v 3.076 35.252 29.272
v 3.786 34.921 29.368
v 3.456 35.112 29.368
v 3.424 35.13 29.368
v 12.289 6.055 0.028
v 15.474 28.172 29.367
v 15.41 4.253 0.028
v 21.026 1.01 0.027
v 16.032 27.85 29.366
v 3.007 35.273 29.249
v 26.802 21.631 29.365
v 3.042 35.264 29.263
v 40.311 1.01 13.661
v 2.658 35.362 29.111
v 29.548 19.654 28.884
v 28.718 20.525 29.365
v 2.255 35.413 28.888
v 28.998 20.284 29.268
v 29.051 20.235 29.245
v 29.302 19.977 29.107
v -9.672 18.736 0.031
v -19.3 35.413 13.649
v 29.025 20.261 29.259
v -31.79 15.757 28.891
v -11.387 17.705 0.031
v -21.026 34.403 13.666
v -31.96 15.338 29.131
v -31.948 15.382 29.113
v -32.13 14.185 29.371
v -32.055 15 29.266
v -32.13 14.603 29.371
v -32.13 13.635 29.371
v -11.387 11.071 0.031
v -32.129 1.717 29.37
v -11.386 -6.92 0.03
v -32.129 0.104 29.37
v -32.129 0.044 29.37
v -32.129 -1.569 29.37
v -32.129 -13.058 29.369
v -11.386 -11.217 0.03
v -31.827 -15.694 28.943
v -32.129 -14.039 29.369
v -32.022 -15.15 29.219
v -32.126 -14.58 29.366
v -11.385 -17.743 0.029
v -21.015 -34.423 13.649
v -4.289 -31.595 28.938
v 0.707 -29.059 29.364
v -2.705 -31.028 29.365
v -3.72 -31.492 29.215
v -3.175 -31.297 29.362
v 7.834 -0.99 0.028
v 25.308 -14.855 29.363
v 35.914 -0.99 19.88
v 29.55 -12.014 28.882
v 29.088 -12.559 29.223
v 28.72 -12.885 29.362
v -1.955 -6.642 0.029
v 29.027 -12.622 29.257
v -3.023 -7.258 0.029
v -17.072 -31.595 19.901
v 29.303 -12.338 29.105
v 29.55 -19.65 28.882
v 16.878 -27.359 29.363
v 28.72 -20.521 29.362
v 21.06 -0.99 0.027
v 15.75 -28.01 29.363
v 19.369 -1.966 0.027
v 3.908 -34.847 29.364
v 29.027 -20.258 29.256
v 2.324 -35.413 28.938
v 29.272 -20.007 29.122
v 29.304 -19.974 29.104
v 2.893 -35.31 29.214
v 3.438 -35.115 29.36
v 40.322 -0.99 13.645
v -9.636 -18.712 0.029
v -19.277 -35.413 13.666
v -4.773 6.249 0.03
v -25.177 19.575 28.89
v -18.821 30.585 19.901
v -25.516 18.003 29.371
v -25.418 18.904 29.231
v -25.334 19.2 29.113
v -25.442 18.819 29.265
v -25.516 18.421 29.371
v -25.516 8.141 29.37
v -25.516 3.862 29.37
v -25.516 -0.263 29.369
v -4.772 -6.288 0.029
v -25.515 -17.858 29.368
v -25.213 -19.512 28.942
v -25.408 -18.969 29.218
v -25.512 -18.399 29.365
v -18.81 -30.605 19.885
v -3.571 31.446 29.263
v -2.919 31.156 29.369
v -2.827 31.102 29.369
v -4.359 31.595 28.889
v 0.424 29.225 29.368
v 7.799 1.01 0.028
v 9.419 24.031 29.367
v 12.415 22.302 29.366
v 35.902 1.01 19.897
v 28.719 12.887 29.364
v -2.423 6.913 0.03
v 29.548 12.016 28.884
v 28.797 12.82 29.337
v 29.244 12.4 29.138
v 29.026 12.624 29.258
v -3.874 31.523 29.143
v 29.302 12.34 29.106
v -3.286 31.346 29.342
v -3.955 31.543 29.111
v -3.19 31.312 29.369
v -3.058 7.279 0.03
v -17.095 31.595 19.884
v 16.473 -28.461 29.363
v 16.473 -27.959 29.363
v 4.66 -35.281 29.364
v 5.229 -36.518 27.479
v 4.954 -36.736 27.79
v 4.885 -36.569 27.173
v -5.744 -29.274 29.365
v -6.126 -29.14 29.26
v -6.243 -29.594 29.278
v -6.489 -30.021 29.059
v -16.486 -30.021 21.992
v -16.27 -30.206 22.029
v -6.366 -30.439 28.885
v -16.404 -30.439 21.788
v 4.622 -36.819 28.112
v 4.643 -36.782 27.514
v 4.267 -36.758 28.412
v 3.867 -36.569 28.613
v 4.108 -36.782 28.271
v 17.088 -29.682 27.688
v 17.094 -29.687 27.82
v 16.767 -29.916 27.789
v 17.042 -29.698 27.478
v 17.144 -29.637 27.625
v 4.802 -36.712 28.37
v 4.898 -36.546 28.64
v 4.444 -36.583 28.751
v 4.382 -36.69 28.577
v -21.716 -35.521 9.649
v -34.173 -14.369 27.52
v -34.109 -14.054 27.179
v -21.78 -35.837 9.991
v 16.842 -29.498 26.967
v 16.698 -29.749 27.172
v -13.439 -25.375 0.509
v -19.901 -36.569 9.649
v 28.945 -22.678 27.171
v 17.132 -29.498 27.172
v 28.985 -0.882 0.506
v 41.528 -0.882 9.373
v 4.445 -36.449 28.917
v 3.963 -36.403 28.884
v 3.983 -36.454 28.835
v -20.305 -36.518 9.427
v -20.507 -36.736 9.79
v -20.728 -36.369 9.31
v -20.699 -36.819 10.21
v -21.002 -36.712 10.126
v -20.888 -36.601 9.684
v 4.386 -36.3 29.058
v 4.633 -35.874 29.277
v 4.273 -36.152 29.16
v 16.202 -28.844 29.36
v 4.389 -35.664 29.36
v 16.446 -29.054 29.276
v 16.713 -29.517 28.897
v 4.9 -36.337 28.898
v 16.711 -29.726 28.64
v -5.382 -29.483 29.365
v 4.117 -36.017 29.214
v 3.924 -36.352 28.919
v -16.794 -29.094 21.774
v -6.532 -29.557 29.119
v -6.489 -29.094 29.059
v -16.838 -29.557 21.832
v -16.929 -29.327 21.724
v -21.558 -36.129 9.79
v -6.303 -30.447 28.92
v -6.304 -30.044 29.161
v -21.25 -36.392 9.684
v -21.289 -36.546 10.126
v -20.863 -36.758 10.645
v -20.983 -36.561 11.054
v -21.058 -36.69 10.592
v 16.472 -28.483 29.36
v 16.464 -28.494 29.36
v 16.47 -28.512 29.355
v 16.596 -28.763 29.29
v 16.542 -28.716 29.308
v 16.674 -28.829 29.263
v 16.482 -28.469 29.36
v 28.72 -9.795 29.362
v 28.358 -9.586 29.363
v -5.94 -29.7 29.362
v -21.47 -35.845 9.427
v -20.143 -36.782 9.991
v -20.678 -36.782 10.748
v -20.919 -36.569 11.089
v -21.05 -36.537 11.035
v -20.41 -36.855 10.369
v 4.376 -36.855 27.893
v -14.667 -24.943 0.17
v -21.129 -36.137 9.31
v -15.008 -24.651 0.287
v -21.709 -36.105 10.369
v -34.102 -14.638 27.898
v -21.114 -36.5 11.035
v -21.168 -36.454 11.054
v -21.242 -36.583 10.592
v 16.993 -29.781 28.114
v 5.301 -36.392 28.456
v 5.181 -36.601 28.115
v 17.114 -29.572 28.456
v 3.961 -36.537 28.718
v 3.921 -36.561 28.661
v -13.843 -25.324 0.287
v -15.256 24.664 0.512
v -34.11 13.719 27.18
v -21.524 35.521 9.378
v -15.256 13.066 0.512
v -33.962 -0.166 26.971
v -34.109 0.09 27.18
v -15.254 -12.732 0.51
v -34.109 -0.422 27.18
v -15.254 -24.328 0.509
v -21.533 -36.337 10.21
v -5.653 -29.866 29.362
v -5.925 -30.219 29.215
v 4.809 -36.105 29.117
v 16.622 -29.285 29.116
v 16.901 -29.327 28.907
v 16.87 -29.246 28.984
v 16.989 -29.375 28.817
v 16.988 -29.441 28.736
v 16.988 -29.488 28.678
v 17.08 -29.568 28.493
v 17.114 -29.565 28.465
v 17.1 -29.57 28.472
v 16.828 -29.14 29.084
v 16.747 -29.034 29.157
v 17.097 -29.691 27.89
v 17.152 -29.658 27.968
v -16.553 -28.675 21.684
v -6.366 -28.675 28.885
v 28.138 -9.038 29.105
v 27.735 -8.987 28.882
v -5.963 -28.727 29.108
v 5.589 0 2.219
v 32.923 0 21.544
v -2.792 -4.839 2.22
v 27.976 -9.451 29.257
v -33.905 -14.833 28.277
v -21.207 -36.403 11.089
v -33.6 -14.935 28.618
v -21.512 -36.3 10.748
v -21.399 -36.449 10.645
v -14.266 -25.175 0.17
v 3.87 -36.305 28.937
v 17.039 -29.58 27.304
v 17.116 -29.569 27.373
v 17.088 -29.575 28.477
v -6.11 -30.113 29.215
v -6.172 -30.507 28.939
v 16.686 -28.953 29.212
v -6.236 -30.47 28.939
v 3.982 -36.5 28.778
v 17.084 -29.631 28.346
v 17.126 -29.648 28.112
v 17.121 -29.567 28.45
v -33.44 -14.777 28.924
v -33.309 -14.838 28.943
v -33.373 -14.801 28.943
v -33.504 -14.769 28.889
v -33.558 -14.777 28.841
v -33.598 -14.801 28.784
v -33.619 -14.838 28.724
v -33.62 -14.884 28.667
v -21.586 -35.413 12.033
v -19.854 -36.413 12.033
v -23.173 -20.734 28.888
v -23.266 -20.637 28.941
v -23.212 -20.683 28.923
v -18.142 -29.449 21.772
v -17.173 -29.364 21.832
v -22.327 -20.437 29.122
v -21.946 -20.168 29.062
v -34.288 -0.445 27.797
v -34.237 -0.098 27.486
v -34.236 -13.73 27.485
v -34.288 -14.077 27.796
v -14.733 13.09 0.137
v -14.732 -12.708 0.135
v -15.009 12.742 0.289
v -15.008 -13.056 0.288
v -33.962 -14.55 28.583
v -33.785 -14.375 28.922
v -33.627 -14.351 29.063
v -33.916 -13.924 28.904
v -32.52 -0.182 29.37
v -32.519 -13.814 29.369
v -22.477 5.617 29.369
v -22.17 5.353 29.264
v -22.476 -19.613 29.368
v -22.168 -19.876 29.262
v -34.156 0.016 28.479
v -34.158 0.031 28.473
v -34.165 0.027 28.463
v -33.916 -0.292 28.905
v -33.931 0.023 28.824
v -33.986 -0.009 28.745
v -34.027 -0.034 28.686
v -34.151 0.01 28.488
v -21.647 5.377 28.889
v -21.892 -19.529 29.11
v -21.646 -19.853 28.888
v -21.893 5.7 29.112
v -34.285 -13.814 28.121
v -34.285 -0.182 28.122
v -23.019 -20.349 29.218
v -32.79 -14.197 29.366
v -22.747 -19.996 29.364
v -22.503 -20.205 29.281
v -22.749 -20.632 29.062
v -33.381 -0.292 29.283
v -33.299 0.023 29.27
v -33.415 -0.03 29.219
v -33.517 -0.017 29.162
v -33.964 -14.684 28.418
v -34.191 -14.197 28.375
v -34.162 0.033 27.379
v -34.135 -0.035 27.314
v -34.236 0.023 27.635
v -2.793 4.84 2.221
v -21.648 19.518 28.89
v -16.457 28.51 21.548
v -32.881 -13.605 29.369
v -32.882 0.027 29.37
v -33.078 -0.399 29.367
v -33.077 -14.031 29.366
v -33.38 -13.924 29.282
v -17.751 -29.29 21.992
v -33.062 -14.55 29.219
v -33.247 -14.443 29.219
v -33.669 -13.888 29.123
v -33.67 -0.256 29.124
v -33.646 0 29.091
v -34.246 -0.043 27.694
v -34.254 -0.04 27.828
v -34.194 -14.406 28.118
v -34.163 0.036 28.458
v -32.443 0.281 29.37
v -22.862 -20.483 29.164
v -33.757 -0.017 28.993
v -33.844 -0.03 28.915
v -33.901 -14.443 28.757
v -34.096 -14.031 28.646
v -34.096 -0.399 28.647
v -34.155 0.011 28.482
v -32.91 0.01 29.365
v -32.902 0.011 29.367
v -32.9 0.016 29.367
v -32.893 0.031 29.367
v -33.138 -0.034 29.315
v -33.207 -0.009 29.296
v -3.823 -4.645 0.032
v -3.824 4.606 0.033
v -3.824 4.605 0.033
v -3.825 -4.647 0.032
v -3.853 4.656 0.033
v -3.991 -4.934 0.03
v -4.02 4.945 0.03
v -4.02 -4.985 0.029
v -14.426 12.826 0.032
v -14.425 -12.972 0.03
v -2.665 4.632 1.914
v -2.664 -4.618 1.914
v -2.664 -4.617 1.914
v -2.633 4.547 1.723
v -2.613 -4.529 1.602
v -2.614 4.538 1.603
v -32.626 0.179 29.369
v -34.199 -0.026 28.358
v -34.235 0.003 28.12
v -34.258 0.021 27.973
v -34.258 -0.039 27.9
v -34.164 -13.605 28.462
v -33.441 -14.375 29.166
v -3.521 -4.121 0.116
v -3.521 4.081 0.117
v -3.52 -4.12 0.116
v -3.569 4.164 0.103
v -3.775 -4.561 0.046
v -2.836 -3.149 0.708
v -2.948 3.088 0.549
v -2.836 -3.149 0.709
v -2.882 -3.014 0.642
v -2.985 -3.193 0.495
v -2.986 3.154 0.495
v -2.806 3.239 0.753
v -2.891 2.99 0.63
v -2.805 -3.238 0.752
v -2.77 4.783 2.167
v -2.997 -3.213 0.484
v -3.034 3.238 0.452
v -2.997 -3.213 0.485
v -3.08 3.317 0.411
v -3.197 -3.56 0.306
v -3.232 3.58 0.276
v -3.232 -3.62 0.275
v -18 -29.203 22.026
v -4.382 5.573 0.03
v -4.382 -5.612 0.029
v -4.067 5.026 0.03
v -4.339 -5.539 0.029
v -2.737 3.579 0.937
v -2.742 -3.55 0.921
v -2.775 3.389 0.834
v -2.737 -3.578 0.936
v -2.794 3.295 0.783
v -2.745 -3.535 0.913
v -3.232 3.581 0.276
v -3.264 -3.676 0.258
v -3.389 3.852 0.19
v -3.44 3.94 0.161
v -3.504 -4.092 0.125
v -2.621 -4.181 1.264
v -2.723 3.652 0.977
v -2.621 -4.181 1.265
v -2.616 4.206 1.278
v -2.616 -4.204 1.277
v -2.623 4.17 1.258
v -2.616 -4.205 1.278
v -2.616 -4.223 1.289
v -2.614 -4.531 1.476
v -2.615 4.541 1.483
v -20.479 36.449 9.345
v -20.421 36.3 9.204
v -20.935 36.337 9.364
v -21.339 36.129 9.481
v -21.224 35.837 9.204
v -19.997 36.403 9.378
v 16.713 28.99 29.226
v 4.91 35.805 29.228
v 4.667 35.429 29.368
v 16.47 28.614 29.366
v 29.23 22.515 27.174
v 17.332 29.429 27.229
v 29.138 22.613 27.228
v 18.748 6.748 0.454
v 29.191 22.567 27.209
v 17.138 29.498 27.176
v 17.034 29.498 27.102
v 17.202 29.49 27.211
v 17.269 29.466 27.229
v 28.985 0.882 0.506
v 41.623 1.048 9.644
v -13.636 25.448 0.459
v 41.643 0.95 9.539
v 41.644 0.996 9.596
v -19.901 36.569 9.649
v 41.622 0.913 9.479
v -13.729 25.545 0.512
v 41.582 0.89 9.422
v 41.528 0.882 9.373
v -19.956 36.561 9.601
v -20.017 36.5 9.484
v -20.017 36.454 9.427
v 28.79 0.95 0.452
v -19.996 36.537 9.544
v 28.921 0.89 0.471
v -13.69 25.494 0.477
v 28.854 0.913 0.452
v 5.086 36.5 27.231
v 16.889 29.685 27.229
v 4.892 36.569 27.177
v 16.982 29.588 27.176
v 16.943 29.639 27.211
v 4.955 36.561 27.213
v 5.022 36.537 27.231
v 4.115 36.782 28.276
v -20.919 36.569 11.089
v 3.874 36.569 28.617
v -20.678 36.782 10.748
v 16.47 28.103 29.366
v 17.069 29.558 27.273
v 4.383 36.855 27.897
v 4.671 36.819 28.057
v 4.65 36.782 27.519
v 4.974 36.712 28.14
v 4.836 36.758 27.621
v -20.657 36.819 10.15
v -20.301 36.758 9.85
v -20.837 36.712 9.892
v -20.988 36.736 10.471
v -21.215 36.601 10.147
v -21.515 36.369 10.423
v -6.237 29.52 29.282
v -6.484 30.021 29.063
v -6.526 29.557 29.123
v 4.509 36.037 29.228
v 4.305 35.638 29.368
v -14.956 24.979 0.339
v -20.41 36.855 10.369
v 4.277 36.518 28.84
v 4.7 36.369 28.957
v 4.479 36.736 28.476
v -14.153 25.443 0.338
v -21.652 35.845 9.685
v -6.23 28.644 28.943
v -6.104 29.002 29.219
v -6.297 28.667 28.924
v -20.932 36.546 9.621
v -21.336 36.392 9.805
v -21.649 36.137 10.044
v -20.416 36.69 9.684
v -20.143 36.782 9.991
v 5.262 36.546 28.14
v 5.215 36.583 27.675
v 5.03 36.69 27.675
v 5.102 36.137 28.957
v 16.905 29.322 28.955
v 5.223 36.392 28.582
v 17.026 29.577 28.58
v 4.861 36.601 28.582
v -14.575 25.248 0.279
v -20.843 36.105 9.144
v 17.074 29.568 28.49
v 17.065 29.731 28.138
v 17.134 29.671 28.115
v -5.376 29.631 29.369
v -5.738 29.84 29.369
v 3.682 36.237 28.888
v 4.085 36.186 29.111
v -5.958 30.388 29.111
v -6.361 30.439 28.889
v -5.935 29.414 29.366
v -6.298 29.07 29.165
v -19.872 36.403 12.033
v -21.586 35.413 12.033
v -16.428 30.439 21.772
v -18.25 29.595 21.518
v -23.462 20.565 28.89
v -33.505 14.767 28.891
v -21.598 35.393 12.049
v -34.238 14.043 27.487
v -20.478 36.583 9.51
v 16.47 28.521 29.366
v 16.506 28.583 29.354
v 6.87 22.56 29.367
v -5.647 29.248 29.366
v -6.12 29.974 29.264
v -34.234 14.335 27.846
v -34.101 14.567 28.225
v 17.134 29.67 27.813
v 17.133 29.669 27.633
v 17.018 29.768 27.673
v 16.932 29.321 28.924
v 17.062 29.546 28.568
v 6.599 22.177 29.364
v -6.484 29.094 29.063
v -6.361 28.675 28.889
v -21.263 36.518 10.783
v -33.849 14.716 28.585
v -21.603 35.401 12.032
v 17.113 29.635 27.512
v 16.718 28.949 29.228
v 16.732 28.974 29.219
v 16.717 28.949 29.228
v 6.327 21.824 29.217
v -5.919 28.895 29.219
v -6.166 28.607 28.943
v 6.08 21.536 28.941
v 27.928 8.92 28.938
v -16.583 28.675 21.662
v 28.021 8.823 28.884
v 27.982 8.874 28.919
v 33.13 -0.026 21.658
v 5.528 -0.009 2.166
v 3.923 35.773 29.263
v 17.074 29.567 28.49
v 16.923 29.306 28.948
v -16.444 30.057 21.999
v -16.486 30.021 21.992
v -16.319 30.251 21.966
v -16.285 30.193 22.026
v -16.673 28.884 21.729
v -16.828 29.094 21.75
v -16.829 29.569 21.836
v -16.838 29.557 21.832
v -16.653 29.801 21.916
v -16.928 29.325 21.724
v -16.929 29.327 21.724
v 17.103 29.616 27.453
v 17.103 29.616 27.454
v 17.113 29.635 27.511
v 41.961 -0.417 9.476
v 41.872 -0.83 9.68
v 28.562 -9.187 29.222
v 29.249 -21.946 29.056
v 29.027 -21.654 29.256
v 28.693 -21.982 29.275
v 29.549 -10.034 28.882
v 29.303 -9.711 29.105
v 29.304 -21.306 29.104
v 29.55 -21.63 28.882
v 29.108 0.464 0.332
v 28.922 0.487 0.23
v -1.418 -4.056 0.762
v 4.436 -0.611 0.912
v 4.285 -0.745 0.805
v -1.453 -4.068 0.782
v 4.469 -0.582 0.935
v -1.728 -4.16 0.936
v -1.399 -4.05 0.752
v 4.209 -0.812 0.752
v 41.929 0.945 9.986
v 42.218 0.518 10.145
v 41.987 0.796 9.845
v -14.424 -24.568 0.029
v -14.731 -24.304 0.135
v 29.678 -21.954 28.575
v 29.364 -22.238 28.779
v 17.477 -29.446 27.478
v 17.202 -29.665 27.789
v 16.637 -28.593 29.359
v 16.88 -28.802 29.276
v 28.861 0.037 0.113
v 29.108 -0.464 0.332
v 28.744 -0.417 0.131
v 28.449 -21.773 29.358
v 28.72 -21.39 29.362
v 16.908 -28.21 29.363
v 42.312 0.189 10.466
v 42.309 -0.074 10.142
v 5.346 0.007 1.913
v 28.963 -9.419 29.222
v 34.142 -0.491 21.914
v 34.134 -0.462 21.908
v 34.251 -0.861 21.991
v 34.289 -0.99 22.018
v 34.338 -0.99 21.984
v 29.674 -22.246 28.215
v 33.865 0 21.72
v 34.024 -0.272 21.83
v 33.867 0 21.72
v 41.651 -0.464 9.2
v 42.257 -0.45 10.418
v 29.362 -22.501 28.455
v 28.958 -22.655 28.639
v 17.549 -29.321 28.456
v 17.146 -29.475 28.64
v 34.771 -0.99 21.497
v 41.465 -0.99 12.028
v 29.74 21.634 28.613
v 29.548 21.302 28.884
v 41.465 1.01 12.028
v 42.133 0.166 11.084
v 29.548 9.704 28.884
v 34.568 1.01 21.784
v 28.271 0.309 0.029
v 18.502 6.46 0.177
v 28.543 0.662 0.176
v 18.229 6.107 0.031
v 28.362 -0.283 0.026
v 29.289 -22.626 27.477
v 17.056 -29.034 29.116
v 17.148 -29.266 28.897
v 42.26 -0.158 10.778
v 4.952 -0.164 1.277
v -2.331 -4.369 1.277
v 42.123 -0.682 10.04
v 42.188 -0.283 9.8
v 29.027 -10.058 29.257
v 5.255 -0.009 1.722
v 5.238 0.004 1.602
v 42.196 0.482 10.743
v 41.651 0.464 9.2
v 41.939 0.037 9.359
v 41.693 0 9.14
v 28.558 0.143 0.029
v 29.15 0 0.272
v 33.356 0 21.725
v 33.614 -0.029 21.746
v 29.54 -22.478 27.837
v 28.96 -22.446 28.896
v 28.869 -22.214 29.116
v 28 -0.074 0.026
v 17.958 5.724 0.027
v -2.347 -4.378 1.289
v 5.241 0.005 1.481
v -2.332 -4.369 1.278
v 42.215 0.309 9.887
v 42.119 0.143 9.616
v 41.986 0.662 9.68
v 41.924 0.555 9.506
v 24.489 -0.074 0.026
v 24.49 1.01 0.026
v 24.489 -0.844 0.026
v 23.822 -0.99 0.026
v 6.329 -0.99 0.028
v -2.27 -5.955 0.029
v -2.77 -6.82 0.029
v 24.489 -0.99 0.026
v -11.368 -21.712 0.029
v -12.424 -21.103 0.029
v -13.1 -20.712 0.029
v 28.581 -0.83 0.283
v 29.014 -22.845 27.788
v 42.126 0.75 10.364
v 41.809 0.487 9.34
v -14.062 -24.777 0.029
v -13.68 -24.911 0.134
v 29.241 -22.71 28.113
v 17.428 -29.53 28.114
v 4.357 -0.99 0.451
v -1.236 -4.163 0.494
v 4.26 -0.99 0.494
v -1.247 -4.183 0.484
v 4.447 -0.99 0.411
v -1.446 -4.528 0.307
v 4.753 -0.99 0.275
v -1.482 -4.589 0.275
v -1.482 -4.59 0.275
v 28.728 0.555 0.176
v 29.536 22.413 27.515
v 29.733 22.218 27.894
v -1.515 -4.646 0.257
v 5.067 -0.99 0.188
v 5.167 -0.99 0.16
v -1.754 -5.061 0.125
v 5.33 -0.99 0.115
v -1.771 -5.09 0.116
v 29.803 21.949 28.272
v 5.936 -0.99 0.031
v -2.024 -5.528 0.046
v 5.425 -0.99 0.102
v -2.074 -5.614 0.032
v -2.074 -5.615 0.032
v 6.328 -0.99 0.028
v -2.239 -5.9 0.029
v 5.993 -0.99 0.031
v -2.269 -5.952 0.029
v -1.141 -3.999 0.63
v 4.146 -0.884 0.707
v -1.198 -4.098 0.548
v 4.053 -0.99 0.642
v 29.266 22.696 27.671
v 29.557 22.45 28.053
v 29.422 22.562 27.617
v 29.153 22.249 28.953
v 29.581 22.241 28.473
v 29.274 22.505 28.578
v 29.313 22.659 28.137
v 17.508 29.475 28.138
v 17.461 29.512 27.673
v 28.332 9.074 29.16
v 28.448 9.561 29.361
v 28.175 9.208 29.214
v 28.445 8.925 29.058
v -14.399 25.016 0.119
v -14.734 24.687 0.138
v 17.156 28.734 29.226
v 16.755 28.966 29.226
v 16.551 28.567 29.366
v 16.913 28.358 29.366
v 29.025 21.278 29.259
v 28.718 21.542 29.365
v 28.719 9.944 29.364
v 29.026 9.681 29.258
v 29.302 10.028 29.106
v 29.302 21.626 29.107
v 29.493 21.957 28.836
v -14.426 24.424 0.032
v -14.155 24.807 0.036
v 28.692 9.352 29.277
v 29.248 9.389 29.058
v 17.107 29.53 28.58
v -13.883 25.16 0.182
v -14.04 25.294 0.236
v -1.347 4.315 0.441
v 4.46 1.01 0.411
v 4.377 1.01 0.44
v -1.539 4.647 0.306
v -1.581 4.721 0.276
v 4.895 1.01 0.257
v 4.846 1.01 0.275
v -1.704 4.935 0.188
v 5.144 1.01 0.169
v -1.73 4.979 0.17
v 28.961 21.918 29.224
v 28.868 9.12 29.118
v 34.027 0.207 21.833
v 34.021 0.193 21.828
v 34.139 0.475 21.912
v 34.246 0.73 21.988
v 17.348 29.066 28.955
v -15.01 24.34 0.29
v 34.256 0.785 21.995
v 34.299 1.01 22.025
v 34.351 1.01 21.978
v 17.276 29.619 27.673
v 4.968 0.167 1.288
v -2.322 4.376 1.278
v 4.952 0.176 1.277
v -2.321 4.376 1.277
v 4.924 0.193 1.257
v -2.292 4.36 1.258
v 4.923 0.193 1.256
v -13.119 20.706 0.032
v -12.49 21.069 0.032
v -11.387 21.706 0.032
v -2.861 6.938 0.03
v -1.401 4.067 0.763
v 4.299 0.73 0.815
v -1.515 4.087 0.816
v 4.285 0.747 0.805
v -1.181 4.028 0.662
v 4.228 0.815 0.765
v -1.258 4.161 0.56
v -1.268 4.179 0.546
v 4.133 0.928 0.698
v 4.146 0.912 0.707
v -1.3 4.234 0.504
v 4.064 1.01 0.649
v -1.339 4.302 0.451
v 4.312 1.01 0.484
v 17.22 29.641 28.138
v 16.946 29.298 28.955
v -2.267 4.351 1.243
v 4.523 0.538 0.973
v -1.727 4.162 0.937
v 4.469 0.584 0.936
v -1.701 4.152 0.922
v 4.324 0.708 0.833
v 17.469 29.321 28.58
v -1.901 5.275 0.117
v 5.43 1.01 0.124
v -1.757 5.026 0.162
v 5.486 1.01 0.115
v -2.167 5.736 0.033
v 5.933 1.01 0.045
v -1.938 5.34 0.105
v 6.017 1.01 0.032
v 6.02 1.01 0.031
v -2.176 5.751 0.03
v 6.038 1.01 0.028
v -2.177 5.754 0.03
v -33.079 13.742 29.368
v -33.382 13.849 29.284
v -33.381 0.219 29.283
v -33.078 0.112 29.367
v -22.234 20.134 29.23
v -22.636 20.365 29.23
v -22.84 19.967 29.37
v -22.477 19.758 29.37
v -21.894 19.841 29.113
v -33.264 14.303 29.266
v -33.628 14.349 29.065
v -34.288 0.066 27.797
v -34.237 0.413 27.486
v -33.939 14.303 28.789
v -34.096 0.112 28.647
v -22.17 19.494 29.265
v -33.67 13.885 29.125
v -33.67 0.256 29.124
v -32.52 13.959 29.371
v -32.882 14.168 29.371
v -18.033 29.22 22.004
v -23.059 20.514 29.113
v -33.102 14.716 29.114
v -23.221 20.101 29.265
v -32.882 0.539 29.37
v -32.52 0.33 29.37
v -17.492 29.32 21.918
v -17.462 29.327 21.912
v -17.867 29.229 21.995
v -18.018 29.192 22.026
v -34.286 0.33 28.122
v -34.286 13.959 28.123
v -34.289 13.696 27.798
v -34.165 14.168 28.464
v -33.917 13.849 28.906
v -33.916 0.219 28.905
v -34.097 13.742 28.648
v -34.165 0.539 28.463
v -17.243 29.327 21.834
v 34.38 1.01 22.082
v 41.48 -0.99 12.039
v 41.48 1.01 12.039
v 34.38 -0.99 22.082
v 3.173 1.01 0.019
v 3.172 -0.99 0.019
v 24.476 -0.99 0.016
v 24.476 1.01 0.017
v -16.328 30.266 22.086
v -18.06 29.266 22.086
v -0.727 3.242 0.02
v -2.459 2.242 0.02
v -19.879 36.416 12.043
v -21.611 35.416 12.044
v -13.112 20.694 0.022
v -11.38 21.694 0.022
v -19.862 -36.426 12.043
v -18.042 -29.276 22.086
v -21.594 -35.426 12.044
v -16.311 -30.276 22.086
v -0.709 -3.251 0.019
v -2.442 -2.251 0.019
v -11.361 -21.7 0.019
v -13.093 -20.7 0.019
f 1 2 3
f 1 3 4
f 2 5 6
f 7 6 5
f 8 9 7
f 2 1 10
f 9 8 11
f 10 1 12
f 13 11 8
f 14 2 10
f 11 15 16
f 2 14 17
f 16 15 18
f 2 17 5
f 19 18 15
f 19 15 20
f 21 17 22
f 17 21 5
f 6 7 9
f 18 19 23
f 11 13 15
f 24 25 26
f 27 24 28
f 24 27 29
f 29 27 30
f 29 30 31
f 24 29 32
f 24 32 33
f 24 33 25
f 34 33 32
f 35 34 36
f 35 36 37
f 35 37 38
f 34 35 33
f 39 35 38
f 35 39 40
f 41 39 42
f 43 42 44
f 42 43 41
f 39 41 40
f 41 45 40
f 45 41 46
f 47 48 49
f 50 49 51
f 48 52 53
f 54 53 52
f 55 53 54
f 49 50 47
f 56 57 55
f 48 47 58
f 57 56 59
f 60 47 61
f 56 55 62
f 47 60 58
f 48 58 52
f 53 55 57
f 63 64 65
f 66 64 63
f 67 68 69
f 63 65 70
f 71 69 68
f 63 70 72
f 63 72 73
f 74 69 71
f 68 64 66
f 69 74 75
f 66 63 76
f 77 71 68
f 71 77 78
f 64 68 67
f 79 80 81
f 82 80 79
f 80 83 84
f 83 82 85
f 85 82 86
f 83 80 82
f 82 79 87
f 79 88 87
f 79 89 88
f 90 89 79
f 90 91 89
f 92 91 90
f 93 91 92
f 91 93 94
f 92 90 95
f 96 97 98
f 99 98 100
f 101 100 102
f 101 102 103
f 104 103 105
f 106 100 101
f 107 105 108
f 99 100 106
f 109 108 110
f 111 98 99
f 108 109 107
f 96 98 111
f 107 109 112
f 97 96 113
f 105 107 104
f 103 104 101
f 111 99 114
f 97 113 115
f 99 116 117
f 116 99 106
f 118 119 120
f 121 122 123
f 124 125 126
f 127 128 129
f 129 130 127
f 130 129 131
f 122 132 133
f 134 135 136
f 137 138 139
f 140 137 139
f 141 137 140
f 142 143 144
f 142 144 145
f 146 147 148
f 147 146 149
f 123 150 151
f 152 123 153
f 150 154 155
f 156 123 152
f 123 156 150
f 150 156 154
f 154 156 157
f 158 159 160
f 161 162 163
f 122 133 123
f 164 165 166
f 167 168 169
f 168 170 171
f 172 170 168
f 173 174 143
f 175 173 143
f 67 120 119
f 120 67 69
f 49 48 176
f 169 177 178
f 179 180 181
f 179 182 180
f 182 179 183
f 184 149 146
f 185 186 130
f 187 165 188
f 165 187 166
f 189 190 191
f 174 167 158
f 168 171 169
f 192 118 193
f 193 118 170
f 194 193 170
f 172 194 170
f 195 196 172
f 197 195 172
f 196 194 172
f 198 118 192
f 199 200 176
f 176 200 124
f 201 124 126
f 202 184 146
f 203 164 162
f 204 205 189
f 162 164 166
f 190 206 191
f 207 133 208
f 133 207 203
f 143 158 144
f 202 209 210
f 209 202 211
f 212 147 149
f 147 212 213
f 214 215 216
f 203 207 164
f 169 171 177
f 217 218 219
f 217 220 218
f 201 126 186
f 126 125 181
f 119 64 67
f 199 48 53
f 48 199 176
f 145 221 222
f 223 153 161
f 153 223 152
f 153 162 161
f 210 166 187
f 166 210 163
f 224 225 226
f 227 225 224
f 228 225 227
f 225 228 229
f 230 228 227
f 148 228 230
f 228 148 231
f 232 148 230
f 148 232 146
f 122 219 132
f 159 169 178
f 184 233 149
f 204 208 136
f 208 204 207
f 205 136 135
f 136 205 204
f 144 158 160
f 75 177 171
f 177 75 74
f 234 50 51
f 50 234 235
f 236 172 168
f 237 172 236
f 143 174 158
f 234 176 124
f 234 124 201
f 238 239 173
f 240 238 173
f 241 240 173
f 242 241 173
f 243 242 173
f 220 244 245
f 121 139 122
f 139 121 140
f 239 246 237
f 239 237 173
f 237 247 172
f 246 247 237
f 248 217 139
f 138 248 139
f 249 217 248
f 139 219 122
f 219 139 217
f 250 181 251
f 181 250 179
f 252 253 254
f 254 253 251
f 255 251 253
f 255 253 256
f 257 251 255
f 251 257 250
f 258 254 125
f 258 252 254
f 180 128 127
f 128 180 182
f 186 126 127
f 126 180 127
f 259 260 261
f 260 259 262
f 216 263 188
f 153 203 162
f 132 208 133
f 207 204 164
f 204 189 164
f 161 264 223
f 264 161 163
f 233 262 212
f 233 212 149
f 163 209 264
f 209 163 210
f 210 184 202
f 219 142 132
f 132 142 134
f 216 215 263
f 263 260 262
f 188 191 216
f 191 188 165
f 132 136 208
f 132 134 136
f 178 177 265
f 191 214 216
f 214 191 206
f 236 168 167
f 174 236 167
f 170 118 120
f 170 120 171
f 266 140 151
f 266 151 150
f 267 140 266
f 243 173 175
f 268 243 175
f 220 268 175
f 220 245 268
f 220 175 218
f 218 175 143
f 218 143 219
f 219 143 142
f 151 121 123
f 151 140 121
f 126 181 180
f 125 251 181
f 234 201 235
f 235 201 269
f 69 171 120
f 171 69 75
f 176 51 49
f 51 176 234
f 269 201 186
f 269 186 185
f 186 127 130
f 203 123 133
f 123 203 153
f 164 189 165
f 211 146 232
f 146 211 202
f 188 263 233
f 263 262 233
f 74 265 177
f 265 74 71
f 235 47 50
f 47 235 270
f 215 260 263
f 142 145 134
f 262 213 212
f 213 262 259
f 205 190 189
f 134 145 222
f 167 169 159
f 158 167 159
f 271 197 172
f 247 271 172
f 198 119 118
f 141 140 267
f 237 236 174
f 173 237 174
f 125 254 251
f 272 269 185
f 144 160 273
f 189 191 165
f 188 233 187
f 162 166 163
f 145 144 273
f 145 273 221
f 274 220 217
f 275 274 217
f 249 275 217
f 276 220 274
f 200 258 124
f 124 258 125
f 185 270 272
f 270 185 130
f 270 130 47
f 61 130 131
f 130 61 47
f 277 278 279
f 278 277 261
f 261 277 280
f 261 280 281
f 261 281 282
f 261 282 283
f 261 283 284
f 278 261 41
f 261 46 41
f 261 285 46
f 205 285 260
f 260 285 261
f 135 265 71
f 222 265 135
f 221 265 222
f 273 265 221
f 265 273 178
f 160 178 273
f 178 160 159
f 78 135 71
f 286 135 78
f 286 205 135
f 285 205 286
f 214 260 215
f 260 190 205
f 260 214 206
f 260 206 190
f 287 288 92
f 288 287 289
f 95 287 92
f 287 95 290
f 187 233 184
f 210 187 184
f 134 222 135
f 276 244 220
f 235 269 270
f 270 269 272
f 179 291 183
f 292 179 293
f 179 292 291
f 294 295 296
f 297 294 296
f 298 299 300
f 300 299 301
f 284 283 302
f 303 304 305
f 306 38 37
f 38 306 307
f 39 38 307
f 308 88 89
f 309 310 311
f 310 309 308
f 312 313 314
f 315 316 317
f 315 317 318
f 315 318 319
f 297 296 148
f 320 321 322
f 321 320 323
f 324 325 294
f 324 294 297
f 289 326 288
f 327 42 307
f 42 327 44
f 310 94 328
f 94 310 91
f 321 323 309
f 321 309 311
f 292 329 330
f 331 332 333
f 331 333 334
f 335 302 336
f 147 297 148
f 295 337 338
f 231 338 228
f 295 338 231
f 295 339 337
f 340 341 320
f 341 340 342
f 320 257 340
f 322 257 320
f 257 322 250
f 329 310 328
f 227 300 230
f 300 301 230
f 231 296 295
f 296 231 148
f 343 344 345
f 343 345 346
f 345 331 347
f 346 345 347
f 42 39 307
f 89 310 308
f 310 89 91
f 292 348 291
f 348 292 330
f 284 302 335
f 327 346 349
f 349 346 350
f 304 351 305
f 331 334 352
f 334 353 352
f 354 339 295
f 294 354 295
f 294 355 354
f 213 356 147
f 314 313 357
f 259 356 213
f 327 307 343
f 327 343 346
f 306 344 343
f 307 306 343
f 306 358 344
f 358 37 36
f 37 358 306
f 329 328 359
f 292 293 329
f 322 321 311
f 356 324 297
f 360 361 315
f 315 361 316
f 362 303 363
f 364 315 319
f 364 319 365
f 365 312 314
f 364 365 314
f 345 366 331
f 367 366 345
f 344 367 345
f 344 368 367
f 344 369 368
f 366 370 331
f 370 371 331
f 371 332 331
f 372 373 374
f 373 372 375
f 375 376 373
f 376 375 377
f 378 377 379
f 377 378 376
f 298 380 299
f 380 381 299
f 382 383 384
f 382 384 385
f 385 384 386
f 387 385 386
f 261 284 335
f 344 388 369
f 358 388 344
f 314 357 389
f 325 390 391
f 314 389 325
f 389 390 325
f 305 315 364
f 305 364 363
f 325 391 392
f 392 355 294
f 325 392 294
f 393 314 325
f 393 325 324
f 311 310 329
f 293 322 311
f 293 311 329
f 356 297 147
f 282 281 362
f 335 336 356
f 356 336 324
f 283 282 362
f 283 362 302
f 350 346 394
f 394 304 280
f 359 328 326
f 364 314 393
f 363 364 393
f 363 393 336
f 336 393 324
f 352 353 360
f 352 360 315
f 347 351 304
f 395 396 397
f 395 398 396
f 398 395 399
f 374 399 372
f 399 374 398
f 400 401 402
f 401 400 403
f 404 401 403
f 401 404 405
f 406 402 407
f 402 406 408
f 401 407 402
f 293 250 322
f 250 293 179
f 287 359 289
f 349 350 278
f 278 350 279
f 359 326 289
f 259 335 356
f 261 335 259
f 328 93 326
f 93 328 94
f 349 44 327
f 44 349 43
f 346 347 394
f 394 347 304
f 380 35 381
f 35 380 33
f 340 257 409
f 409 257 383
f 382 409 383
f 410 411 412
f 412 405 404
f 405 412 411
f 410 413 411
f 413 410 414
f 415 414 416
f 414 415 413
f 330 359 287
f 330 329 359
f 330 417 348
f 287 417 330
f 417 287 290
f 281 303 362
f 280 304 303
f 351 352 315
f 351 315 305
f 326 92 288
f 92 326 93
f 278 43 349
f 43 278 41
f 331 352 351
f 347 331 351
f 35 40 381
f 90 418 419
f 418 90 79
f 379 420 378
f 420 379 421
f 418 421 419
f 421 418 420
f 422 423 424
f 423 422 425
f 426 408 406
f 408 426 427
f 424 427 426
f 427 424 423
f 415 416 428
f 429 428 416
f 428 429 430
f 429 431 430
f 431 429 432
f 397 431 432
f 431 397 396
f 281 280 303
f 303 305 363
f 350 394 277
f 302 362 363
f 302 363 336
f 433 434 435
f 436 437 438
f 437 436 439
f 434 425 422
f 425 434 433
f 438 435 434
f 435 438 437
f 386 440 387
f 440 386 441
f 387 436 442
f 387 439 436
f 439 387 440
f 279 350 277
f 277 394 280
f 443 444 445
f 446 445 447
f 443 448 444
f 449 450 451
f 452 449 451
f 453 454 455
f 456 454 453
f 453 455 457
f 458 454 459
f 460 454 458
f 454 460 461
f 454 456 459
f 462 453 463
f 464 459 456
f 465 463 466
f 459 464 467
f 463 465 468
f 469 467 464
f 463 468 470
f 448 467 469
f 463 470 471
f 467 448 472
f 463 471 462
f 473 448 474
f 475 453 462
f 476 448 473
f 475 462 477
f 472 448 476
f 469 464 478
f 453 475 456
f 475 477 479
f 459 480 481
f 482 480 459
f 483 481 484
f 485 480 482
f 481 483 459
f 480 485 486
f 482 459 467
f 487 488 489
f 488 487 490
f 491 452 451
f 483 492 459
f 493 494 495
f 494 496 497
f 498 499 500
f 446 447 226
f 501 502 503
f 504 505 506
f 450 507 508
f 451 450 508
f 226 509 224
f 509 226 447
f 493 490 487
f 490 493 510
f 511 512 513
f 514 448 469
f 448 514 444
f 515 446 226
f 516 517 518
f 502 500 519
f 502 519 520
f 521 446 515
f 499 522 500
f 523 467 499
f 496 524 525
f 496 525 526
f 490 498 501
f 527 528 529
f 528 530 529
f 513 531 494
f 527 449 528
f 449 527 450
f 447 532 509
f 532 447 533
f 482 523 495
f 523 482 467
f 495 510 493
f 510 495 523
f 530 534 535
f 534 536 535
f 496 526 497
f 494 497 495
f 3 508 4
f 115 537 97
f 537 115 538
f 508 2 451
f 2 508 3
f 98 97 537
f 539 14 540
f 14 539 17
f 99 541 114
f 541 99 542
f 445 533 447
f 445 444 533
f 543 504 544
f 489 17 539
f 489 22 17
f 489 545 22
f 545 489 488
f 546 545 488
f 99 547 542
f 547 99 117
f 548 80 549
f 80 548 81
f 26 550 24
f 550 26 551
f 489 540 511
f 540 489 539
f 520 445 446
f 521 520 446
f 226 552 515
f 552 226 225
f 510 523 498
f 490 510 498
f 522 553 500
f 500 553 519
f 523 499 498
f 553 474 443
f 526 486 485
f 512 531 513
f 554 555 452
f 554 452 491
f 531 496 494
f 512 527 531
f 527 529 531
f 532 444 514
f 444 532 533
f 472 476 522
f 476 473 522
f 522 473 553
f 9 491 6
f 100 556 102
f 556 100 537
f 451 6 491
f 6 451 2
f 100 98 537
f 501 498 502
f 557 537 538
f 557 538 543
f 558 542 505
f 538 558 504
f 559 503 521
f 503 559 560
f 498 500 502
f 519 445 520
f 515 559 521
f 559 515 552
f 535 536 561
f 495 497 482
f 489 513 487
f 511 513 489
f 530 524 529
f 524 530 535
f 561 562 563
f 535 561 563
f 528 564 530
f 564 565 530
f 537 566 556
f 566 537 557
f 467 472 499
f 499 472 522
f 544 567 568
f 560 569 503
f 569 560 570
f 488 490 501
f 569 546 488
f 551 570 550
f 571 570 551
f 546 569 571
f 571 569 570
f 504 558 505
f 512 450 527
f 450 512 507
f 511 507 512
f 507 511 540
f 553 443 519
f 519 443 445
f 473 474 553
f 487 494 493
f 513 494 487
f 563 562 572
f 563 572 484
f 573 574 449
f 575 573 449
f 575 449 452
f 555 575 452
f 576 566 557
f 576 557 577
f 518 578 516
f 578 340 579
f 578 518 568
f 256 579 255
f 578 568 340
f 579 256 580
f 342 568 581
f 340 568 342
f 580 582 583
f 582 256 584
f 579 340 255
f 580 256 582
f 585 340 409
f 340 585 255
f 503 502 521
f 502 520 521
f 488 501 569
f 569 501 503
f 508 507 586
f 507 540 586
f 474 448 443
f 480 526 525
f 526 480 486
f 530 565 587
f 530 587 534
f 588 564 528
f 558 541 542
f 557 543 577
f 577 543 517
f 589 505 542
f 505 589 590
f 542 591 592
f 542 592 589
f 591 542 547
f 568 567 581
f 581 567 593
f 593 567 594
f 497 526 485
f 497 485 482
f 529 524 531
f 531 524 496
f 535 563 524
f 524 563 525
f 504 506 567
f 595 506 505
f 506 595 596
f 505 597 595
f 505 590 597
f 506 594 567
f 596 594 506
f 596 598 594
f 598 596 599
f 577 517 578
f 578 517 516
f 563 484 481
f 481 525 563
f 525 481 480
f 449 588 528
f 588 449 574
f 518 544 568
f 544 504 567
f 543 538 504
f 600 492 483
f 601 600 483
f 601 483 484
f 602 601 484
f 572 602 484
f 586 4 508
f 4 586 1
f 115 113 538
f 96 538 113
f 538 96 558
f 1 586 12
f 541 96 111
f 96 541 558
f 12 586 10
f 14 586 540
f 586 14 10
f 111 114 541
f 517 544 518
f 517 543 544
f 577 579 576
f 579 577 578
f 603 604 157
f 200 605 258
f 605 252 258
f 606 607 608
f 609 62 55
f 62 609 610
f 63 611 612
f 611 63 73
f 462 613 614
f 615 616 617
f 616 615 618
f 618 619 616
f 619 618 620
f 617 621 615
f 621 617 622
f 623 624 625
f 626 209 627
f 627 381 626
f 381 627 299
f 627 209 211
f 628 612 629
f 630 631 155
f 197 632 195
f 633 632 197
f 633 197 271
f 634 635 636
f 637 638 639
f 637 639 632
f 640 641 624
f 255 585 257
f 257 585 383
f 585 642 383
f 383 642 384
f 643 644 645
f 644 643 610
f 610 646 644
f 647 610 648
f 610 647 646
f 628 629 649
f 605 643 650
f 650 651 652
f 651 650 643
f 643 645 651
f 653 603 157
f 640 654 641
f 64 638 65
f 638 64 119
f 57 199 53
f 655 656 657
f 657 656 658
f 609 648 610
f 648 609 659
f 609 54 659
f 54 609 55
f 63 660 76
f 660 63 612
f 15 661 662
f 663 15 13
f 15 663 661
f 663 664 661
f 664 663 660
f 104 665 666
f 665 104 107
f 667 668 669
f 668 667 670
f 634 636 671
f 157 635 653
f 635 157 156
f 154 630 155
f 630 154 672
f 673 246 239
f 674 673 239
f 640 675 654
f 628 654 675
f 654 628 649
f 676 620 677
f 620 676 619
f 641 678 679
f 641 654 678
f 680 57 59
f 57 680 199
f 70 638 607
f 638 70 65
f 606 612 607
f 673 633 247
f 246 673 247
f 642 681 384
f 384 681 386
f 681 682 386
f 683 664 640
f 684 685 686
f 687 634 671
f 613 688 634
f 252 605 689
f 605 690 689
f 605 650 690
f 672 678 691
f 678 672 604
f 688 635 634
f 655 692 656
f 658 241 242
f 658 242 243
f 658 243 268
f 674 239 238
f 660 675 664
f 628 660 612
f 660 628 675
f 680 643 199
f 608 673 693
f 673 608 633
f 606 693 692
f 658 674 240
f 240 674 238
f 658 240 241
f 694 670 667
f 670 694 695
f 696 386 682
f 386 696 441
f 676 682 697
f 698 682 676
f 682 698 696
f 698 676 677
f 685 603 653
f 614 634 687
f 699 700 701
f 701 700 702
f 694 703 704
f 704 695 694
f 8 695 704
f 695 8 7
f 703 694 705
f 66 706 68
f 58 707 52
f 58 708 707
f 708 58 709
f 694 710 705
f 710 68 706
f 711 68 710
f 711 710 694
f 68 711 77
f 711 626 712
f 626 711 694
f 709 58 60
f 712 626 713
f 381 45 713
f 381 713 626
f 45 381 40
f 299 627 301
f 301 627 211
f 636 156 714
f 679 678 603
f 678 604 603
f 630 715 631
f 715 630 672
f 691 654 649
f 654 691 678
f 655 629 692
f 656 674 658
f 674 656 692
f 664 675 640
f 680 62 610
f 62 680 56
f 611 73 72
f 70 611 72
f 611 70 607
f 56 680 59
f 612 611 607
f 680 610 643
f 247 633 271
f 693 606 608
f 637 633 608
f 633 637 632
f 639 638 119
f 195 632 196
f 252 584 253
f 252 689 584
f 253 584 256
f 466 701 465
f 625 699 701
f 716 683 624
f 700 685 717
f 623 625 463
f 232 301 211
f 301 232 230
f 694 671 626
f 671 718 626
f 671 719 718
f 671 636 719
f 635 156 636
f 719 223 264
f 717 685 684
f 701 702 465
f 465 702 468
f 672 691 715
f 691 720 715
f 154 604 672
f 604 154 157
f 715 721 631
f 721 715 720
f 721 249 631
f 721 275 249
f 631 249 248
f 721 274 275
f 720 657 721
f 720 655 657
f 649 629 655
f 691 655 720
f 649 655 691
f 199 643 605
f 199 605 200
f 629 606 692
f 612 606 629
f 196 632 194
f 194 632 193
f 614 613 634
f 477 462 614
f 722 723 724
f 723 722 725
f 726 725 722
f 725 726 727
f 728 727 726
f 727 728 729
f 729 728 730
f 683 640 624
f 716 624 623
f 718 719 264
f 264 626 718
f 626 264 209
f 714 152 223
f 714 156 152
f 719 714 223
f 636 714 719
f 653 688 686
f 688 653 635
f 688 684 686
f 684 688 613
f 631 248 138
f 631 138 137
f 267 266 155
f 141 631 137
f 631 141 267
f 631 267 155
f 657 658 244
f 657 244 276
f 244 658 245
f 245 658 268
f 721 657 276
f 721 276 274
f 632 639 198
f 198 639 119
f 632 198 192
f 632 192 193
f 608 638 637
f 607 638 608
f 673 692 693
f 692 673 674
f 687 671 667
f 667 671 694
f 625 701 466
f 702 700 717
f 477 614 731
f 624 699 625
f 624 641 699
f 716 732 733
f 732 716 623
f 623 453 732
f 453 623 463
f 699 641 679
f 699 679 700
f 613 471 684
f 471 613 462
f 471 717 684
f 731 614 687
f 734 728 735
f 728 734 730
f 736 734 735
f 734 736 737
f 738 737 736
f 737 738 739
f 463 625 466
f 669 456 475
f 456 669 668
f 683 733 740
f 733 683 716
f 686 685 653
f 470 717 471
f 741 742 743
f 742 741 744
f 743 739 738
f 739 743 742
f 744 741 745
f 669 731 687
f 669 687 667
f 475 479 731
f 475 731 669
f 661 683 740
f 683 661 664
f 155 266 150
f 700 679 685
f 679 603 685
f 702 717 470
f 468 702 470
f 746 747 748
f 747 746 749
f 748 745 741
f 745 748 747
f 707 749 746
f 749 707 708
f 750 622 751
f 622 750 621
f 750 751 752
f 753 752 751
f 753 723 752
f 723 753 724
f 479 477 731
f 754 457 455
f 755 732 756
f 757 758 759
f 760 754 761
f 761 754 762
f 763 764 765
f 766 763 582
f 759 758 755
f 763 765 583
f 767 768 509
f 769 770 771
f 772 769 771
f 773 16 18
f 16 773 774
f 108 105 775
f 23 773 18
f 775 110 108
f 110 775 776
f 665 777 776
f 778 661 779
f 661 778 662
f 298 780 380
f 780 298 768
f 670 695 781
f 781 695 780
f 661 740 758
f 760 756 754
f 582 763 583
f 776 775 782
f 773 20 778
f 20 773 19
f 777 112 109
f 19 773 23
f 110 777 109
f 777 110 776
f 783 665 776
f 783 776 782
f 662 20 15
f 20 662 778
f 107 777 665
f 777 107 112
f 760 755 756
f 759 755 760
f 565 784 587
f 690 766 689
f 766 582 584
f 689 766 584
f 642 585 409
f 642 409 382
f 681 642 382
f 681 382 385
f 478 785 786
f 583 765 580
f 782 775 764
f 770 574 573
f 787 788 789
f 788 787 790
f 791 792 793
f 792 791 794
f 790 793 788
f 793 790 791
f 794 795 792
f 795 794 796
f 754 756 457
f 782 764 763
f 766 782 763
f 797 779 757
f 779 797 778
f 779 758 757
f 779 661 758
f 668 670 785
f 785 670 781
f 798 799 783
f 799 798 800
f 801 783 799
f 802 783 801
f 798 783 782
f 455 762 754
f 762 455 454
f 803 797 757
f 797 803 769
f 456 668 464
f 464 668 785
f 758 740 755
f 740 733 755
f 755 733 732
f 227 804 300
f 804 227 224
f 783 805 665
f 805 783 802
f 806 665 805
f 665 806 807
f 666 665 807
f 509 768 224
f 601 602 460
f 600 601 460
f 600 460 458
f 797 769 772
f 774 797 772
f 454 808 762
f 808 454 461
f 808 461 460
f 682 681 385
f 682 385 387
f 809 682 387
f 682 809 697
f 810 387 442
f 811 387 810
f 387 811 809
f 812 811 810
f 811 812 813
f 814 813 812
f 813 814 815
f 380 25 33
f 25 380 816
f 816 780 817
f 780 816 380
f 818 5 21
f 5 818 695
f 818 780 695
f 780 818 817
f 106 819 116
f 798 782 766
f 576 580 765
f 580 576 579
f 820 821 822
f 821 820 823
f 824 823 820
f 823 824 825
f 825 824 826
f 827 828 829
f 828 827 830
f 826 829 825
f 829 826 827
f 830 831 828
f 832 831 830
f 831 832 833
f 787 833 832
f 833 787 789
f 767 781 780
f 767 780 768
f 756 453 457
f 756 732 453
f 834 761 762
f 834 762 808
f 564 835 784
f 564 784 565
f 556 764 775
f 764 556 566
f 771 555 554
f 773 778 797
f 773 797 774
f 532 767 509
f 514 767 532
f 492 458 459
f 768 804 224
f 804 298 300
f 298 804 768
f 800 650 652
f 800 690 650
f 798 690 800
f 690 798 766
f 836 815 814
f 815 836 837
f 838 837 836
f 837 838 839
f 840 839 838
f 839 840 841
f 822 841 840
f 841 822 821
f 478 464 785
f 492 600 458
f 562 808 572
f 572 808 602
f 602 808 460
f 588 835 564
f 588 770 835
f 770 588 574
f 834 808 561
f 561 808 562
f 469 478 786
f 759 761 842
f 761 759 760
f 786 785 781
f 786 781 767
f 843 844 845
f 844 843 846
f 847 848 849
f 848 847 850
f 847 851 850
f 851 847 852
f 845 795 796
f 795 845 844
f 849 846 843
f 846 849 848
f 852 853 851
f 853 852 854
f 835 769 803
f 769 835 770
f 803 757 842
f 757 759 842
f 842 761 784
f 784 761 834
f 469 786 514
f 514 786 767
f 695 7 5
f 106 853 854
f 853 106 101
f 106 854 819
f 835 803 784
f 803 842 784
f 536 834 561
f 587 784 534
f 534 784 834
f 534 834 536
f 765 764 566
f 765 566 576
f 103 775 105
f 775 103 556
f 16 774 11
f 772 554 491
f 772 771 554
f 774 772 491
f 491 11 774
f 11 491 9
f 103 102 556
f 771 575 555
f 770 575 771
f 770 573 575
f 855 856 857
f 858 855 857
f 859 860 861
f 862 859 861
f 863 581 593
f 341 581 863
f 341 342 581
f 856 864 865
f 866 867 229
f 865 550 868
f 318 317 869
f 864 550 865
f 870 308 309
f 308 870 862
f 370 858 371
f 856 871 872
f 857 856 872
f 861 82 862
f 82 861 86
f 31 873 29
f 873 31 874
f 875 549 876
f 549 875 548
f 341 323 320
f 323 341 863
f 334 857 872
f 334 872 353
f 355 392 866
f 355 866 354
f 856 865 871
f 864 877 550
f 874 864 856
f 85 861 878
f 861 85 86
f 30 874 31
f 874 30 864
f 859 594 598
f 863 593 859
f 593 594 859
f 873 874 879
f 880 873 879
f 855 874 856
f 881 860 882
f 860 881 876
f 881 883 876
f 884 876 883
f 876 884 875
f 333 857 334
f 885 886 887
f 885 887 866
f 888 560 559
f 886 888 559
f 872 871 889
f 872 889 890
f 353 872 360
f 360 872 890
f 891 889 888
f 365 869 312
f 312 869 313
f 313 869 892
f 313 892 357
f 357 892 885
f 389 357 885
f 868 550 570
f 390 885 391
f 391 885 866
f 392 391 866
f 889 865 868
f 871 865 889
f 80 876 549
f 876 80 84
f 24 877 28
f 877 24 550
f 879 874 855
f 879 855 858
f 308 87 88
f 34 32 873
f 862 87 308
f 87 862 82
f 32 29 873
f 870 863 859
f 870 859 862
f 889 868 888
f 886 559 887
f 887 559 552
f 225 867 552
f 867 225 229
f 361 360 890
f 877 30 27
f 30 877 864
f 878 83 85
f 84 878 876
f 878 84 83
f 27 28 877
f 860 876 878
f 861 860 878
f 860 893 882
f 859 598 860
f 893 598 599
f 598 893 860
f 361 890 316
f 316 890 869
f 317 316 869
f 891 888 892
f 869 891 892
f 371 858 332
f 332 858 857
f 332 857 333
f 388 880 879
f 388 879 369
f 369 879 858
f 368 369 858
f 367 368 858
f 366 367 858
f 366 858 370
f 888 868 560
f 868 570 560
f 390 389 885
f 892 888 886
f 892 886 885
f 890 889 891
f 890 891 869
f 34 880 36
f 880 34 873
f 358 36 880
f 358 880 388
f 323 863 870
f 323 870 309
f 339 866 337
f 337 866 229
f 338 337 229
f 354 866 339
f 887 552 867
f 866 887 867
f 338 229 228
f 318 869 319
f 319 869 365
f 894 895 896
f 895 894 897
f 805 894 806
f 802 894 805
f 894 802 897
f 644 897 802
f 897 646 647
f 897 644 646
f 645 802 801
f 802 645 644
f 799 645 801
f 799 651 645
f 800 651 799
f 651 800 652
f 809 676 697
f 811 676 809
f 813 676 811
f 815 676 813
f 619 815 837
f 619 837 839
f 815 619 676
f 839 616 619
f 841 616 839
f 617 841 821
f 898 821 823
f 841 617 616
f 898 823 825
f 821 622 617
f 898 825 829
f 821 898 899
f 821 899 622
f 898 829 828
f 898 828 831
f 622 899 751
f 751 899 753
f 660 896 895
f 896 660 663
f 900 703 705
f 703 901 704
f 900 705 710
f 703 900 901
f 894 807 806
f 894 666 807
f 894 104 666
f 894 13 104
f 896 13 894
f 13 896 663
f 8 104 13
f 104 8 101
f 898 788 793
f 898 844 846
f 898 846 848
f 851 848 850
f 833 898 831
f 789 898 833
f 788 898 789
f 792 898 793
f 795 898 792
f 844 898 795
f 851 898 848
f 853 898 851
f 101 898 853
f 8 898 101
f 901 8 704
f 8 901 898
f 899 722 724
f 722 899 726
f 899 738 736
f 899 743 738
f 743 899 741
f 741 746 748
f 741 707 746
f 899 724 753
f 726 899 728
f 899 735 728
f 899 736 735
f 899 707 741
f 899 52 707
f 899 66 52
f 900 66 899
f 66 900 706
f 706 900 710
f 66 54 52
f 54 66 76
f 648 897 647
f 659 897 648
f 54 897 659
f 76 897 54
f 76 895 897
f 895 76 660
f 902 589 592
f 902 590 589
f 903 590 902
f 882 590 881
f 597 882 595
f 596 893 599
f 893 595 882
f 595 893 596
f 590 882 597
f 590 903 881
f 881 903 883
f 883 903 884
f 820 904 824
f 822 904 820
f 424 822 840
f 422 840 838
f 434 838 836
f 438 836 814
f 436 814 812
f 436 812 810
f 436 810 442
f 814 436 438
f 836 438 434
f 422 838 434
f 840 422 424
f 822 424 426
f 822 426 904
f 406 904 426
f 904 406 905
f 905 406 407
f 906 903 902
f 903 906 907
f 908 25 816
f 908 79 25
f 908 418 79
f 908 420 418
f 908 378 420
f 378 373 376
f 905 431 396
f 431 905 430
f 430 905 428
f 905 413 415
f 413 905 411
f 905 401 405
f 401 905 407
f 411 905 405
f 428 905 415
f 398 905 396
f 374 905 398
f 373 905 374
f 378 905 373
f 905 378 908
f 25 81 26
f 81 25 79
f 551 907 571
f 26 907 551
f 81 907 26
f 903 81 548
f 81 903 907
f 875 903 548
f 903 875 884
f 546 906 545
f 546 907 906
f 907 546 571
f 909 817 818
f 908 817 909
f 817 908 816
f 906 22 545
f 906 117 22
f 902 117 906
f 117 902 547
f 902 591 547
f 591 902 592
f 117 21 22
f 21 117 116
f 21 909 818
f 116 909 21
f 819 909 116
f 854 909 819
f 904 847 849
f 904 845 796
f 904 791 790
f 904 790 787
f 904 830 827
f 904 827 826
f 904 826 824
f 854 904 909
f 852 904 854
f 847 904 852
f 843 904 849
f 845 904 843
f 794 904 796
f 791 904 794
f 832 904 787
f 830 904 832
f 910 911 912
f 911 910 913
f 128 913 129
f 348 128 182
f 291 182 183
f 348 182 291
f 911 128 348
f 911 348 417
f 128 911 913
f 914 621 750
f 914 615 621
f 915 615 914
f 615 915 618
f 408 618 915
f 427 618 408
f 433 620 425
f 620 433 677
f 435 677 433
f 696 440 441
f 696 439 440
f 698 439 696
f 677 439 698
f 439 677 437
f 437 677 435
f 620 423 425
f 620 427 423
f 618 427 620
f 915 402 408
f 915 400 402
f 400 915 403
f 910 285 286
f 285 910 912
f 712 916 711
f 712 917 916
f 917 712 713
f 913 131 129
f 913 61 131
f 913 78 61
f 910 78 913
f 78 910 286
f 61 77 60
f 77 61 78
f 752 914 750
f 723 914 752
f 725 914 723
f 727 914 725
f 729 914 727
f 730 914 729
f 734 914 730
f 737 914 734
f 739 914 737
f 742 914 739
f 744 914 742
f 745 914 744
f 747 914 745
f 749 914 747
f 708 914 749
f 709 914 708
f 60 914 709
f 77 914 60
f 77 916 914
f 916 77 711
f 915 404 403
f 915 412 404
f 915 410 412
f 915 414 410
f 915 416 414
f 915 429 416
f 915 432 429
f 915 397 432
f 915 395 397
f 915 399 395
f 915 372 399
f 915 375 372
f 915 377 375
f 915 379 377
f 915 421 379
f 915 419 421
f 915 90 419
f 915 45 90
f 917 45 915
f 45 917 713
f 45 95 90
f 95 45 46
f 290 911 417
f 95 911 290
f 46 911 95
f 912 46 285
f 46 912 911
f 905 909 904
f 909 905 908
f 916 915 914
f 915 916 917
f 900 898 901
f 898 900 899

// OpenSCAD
/*
 * Base Tiles - Parameterized Corners
 *
 * By Craig Wood
 *
 * Copyright 2020 Craig Wood - http://github.com/w3ace
 * This program is free software: you can redistribute it and/or modify
 * it under the terms of the GNU General Public License as published by
 * the Free Software Foundation, either version 3 of the License, or
 * (at your option) any later version.
 *
 * This program is distributed in thehope that it will be useful,
 * but WITHOUT ANY WARRANTY; without even the implied warranty of
 * MERCHANTABILITY or FITNESS FOR A PARTICULAR PURPOSE.  See the
 * GNU General Public License for more details.
 *
 * See <http://www.gnu.org/licenses/>.
 *
*/

$fn=20;

length = 50;
height = 40;
channel = 5.4;
wallwidth = 1.4;
supportwidth = 2;
rotateconstant = 35.26;

width = channel+wallwidth*2;

cham = 3;

										
//		frame();			
corner_bracket ();

module corner_bracket () {


	translate([0,0,-18.5])
		rotate([45,-rotateconstant,0])
			translate([0,-2.565,0])
				difference () {

					// Rotated Corner Bracket
						translate([0,2.565,0])
							union () {
								difference () {
									minkowski () {
										difference() {
											frame();
											rotate([-rotateconstant,45,0])
												cube([80,80,40],center=true);
											translate([36,36,43])
												rotate([-rotateconstant,45,0])
													cube([100,100,40],center=true);
											}
										sphere(d=cham);
									}
									channels();
								}
								supports();
							}

					// Plane Cut Cube to Crop Corner
					rotate([-rotateconstant,45,0])
						cube([80,80,40],center=true);
				}
}


module frame () {
	cube([length,width,height],center=false);
	translate([width,0,0])
		rotate([0,0,90])
			cube([length,width,height],center=false);		
	translate([0,0,width])
		rotate([270,0,0])
			cube([length,width,height],center=false);		
	rotate([90,0,90])
		cube([length,width,height],center=false);	
	translate([0,width,0])
		rotate([0,270,180])
			cube([length,width,height],center=false);		
		rotate([0,270,270])
			cube([length,width,height],center=false);	
}


module channels () { 

	translate([wallwidth,wallwidth,wallwidth])
		cube([length+cham,channel,length+cham]);
	translate([width,0,0])
		rotate([0,0,90])
			translate([wallwidth,wallwidth,wallwidth])
				cube([length+cham,channel,length+cham]);
	translate([0,0,width])
		rotate([270,0,0])		
			translate([wallwidth,wallwidth,wallwidth])
				cube([length+cham,channel,length+cham]);
	rotate([90,0,90])		
		translate([wallwidth,wallwidth,wallwidth])
			cube([length+cham,channel,length+cham]);
}


module supports () {

	translate([9,0,supportwidth*.7])
		rotate([-45,0,0])
			cube([length-9+cham/2,supportwidth,width*1.5]);
	translate([supportwidth*.70,0])
		rotate([45,0,90])	
			translate([9,0,0])
			cube([length-9+cham/2,supportwidth,width*1.5]);
	translate([0,supportwidth*.7,0])
		rotate([225,270,0])	
			translate([9,0,0])
			cube([length-9+cham/2,supportwidth,width*1.5]);
}
